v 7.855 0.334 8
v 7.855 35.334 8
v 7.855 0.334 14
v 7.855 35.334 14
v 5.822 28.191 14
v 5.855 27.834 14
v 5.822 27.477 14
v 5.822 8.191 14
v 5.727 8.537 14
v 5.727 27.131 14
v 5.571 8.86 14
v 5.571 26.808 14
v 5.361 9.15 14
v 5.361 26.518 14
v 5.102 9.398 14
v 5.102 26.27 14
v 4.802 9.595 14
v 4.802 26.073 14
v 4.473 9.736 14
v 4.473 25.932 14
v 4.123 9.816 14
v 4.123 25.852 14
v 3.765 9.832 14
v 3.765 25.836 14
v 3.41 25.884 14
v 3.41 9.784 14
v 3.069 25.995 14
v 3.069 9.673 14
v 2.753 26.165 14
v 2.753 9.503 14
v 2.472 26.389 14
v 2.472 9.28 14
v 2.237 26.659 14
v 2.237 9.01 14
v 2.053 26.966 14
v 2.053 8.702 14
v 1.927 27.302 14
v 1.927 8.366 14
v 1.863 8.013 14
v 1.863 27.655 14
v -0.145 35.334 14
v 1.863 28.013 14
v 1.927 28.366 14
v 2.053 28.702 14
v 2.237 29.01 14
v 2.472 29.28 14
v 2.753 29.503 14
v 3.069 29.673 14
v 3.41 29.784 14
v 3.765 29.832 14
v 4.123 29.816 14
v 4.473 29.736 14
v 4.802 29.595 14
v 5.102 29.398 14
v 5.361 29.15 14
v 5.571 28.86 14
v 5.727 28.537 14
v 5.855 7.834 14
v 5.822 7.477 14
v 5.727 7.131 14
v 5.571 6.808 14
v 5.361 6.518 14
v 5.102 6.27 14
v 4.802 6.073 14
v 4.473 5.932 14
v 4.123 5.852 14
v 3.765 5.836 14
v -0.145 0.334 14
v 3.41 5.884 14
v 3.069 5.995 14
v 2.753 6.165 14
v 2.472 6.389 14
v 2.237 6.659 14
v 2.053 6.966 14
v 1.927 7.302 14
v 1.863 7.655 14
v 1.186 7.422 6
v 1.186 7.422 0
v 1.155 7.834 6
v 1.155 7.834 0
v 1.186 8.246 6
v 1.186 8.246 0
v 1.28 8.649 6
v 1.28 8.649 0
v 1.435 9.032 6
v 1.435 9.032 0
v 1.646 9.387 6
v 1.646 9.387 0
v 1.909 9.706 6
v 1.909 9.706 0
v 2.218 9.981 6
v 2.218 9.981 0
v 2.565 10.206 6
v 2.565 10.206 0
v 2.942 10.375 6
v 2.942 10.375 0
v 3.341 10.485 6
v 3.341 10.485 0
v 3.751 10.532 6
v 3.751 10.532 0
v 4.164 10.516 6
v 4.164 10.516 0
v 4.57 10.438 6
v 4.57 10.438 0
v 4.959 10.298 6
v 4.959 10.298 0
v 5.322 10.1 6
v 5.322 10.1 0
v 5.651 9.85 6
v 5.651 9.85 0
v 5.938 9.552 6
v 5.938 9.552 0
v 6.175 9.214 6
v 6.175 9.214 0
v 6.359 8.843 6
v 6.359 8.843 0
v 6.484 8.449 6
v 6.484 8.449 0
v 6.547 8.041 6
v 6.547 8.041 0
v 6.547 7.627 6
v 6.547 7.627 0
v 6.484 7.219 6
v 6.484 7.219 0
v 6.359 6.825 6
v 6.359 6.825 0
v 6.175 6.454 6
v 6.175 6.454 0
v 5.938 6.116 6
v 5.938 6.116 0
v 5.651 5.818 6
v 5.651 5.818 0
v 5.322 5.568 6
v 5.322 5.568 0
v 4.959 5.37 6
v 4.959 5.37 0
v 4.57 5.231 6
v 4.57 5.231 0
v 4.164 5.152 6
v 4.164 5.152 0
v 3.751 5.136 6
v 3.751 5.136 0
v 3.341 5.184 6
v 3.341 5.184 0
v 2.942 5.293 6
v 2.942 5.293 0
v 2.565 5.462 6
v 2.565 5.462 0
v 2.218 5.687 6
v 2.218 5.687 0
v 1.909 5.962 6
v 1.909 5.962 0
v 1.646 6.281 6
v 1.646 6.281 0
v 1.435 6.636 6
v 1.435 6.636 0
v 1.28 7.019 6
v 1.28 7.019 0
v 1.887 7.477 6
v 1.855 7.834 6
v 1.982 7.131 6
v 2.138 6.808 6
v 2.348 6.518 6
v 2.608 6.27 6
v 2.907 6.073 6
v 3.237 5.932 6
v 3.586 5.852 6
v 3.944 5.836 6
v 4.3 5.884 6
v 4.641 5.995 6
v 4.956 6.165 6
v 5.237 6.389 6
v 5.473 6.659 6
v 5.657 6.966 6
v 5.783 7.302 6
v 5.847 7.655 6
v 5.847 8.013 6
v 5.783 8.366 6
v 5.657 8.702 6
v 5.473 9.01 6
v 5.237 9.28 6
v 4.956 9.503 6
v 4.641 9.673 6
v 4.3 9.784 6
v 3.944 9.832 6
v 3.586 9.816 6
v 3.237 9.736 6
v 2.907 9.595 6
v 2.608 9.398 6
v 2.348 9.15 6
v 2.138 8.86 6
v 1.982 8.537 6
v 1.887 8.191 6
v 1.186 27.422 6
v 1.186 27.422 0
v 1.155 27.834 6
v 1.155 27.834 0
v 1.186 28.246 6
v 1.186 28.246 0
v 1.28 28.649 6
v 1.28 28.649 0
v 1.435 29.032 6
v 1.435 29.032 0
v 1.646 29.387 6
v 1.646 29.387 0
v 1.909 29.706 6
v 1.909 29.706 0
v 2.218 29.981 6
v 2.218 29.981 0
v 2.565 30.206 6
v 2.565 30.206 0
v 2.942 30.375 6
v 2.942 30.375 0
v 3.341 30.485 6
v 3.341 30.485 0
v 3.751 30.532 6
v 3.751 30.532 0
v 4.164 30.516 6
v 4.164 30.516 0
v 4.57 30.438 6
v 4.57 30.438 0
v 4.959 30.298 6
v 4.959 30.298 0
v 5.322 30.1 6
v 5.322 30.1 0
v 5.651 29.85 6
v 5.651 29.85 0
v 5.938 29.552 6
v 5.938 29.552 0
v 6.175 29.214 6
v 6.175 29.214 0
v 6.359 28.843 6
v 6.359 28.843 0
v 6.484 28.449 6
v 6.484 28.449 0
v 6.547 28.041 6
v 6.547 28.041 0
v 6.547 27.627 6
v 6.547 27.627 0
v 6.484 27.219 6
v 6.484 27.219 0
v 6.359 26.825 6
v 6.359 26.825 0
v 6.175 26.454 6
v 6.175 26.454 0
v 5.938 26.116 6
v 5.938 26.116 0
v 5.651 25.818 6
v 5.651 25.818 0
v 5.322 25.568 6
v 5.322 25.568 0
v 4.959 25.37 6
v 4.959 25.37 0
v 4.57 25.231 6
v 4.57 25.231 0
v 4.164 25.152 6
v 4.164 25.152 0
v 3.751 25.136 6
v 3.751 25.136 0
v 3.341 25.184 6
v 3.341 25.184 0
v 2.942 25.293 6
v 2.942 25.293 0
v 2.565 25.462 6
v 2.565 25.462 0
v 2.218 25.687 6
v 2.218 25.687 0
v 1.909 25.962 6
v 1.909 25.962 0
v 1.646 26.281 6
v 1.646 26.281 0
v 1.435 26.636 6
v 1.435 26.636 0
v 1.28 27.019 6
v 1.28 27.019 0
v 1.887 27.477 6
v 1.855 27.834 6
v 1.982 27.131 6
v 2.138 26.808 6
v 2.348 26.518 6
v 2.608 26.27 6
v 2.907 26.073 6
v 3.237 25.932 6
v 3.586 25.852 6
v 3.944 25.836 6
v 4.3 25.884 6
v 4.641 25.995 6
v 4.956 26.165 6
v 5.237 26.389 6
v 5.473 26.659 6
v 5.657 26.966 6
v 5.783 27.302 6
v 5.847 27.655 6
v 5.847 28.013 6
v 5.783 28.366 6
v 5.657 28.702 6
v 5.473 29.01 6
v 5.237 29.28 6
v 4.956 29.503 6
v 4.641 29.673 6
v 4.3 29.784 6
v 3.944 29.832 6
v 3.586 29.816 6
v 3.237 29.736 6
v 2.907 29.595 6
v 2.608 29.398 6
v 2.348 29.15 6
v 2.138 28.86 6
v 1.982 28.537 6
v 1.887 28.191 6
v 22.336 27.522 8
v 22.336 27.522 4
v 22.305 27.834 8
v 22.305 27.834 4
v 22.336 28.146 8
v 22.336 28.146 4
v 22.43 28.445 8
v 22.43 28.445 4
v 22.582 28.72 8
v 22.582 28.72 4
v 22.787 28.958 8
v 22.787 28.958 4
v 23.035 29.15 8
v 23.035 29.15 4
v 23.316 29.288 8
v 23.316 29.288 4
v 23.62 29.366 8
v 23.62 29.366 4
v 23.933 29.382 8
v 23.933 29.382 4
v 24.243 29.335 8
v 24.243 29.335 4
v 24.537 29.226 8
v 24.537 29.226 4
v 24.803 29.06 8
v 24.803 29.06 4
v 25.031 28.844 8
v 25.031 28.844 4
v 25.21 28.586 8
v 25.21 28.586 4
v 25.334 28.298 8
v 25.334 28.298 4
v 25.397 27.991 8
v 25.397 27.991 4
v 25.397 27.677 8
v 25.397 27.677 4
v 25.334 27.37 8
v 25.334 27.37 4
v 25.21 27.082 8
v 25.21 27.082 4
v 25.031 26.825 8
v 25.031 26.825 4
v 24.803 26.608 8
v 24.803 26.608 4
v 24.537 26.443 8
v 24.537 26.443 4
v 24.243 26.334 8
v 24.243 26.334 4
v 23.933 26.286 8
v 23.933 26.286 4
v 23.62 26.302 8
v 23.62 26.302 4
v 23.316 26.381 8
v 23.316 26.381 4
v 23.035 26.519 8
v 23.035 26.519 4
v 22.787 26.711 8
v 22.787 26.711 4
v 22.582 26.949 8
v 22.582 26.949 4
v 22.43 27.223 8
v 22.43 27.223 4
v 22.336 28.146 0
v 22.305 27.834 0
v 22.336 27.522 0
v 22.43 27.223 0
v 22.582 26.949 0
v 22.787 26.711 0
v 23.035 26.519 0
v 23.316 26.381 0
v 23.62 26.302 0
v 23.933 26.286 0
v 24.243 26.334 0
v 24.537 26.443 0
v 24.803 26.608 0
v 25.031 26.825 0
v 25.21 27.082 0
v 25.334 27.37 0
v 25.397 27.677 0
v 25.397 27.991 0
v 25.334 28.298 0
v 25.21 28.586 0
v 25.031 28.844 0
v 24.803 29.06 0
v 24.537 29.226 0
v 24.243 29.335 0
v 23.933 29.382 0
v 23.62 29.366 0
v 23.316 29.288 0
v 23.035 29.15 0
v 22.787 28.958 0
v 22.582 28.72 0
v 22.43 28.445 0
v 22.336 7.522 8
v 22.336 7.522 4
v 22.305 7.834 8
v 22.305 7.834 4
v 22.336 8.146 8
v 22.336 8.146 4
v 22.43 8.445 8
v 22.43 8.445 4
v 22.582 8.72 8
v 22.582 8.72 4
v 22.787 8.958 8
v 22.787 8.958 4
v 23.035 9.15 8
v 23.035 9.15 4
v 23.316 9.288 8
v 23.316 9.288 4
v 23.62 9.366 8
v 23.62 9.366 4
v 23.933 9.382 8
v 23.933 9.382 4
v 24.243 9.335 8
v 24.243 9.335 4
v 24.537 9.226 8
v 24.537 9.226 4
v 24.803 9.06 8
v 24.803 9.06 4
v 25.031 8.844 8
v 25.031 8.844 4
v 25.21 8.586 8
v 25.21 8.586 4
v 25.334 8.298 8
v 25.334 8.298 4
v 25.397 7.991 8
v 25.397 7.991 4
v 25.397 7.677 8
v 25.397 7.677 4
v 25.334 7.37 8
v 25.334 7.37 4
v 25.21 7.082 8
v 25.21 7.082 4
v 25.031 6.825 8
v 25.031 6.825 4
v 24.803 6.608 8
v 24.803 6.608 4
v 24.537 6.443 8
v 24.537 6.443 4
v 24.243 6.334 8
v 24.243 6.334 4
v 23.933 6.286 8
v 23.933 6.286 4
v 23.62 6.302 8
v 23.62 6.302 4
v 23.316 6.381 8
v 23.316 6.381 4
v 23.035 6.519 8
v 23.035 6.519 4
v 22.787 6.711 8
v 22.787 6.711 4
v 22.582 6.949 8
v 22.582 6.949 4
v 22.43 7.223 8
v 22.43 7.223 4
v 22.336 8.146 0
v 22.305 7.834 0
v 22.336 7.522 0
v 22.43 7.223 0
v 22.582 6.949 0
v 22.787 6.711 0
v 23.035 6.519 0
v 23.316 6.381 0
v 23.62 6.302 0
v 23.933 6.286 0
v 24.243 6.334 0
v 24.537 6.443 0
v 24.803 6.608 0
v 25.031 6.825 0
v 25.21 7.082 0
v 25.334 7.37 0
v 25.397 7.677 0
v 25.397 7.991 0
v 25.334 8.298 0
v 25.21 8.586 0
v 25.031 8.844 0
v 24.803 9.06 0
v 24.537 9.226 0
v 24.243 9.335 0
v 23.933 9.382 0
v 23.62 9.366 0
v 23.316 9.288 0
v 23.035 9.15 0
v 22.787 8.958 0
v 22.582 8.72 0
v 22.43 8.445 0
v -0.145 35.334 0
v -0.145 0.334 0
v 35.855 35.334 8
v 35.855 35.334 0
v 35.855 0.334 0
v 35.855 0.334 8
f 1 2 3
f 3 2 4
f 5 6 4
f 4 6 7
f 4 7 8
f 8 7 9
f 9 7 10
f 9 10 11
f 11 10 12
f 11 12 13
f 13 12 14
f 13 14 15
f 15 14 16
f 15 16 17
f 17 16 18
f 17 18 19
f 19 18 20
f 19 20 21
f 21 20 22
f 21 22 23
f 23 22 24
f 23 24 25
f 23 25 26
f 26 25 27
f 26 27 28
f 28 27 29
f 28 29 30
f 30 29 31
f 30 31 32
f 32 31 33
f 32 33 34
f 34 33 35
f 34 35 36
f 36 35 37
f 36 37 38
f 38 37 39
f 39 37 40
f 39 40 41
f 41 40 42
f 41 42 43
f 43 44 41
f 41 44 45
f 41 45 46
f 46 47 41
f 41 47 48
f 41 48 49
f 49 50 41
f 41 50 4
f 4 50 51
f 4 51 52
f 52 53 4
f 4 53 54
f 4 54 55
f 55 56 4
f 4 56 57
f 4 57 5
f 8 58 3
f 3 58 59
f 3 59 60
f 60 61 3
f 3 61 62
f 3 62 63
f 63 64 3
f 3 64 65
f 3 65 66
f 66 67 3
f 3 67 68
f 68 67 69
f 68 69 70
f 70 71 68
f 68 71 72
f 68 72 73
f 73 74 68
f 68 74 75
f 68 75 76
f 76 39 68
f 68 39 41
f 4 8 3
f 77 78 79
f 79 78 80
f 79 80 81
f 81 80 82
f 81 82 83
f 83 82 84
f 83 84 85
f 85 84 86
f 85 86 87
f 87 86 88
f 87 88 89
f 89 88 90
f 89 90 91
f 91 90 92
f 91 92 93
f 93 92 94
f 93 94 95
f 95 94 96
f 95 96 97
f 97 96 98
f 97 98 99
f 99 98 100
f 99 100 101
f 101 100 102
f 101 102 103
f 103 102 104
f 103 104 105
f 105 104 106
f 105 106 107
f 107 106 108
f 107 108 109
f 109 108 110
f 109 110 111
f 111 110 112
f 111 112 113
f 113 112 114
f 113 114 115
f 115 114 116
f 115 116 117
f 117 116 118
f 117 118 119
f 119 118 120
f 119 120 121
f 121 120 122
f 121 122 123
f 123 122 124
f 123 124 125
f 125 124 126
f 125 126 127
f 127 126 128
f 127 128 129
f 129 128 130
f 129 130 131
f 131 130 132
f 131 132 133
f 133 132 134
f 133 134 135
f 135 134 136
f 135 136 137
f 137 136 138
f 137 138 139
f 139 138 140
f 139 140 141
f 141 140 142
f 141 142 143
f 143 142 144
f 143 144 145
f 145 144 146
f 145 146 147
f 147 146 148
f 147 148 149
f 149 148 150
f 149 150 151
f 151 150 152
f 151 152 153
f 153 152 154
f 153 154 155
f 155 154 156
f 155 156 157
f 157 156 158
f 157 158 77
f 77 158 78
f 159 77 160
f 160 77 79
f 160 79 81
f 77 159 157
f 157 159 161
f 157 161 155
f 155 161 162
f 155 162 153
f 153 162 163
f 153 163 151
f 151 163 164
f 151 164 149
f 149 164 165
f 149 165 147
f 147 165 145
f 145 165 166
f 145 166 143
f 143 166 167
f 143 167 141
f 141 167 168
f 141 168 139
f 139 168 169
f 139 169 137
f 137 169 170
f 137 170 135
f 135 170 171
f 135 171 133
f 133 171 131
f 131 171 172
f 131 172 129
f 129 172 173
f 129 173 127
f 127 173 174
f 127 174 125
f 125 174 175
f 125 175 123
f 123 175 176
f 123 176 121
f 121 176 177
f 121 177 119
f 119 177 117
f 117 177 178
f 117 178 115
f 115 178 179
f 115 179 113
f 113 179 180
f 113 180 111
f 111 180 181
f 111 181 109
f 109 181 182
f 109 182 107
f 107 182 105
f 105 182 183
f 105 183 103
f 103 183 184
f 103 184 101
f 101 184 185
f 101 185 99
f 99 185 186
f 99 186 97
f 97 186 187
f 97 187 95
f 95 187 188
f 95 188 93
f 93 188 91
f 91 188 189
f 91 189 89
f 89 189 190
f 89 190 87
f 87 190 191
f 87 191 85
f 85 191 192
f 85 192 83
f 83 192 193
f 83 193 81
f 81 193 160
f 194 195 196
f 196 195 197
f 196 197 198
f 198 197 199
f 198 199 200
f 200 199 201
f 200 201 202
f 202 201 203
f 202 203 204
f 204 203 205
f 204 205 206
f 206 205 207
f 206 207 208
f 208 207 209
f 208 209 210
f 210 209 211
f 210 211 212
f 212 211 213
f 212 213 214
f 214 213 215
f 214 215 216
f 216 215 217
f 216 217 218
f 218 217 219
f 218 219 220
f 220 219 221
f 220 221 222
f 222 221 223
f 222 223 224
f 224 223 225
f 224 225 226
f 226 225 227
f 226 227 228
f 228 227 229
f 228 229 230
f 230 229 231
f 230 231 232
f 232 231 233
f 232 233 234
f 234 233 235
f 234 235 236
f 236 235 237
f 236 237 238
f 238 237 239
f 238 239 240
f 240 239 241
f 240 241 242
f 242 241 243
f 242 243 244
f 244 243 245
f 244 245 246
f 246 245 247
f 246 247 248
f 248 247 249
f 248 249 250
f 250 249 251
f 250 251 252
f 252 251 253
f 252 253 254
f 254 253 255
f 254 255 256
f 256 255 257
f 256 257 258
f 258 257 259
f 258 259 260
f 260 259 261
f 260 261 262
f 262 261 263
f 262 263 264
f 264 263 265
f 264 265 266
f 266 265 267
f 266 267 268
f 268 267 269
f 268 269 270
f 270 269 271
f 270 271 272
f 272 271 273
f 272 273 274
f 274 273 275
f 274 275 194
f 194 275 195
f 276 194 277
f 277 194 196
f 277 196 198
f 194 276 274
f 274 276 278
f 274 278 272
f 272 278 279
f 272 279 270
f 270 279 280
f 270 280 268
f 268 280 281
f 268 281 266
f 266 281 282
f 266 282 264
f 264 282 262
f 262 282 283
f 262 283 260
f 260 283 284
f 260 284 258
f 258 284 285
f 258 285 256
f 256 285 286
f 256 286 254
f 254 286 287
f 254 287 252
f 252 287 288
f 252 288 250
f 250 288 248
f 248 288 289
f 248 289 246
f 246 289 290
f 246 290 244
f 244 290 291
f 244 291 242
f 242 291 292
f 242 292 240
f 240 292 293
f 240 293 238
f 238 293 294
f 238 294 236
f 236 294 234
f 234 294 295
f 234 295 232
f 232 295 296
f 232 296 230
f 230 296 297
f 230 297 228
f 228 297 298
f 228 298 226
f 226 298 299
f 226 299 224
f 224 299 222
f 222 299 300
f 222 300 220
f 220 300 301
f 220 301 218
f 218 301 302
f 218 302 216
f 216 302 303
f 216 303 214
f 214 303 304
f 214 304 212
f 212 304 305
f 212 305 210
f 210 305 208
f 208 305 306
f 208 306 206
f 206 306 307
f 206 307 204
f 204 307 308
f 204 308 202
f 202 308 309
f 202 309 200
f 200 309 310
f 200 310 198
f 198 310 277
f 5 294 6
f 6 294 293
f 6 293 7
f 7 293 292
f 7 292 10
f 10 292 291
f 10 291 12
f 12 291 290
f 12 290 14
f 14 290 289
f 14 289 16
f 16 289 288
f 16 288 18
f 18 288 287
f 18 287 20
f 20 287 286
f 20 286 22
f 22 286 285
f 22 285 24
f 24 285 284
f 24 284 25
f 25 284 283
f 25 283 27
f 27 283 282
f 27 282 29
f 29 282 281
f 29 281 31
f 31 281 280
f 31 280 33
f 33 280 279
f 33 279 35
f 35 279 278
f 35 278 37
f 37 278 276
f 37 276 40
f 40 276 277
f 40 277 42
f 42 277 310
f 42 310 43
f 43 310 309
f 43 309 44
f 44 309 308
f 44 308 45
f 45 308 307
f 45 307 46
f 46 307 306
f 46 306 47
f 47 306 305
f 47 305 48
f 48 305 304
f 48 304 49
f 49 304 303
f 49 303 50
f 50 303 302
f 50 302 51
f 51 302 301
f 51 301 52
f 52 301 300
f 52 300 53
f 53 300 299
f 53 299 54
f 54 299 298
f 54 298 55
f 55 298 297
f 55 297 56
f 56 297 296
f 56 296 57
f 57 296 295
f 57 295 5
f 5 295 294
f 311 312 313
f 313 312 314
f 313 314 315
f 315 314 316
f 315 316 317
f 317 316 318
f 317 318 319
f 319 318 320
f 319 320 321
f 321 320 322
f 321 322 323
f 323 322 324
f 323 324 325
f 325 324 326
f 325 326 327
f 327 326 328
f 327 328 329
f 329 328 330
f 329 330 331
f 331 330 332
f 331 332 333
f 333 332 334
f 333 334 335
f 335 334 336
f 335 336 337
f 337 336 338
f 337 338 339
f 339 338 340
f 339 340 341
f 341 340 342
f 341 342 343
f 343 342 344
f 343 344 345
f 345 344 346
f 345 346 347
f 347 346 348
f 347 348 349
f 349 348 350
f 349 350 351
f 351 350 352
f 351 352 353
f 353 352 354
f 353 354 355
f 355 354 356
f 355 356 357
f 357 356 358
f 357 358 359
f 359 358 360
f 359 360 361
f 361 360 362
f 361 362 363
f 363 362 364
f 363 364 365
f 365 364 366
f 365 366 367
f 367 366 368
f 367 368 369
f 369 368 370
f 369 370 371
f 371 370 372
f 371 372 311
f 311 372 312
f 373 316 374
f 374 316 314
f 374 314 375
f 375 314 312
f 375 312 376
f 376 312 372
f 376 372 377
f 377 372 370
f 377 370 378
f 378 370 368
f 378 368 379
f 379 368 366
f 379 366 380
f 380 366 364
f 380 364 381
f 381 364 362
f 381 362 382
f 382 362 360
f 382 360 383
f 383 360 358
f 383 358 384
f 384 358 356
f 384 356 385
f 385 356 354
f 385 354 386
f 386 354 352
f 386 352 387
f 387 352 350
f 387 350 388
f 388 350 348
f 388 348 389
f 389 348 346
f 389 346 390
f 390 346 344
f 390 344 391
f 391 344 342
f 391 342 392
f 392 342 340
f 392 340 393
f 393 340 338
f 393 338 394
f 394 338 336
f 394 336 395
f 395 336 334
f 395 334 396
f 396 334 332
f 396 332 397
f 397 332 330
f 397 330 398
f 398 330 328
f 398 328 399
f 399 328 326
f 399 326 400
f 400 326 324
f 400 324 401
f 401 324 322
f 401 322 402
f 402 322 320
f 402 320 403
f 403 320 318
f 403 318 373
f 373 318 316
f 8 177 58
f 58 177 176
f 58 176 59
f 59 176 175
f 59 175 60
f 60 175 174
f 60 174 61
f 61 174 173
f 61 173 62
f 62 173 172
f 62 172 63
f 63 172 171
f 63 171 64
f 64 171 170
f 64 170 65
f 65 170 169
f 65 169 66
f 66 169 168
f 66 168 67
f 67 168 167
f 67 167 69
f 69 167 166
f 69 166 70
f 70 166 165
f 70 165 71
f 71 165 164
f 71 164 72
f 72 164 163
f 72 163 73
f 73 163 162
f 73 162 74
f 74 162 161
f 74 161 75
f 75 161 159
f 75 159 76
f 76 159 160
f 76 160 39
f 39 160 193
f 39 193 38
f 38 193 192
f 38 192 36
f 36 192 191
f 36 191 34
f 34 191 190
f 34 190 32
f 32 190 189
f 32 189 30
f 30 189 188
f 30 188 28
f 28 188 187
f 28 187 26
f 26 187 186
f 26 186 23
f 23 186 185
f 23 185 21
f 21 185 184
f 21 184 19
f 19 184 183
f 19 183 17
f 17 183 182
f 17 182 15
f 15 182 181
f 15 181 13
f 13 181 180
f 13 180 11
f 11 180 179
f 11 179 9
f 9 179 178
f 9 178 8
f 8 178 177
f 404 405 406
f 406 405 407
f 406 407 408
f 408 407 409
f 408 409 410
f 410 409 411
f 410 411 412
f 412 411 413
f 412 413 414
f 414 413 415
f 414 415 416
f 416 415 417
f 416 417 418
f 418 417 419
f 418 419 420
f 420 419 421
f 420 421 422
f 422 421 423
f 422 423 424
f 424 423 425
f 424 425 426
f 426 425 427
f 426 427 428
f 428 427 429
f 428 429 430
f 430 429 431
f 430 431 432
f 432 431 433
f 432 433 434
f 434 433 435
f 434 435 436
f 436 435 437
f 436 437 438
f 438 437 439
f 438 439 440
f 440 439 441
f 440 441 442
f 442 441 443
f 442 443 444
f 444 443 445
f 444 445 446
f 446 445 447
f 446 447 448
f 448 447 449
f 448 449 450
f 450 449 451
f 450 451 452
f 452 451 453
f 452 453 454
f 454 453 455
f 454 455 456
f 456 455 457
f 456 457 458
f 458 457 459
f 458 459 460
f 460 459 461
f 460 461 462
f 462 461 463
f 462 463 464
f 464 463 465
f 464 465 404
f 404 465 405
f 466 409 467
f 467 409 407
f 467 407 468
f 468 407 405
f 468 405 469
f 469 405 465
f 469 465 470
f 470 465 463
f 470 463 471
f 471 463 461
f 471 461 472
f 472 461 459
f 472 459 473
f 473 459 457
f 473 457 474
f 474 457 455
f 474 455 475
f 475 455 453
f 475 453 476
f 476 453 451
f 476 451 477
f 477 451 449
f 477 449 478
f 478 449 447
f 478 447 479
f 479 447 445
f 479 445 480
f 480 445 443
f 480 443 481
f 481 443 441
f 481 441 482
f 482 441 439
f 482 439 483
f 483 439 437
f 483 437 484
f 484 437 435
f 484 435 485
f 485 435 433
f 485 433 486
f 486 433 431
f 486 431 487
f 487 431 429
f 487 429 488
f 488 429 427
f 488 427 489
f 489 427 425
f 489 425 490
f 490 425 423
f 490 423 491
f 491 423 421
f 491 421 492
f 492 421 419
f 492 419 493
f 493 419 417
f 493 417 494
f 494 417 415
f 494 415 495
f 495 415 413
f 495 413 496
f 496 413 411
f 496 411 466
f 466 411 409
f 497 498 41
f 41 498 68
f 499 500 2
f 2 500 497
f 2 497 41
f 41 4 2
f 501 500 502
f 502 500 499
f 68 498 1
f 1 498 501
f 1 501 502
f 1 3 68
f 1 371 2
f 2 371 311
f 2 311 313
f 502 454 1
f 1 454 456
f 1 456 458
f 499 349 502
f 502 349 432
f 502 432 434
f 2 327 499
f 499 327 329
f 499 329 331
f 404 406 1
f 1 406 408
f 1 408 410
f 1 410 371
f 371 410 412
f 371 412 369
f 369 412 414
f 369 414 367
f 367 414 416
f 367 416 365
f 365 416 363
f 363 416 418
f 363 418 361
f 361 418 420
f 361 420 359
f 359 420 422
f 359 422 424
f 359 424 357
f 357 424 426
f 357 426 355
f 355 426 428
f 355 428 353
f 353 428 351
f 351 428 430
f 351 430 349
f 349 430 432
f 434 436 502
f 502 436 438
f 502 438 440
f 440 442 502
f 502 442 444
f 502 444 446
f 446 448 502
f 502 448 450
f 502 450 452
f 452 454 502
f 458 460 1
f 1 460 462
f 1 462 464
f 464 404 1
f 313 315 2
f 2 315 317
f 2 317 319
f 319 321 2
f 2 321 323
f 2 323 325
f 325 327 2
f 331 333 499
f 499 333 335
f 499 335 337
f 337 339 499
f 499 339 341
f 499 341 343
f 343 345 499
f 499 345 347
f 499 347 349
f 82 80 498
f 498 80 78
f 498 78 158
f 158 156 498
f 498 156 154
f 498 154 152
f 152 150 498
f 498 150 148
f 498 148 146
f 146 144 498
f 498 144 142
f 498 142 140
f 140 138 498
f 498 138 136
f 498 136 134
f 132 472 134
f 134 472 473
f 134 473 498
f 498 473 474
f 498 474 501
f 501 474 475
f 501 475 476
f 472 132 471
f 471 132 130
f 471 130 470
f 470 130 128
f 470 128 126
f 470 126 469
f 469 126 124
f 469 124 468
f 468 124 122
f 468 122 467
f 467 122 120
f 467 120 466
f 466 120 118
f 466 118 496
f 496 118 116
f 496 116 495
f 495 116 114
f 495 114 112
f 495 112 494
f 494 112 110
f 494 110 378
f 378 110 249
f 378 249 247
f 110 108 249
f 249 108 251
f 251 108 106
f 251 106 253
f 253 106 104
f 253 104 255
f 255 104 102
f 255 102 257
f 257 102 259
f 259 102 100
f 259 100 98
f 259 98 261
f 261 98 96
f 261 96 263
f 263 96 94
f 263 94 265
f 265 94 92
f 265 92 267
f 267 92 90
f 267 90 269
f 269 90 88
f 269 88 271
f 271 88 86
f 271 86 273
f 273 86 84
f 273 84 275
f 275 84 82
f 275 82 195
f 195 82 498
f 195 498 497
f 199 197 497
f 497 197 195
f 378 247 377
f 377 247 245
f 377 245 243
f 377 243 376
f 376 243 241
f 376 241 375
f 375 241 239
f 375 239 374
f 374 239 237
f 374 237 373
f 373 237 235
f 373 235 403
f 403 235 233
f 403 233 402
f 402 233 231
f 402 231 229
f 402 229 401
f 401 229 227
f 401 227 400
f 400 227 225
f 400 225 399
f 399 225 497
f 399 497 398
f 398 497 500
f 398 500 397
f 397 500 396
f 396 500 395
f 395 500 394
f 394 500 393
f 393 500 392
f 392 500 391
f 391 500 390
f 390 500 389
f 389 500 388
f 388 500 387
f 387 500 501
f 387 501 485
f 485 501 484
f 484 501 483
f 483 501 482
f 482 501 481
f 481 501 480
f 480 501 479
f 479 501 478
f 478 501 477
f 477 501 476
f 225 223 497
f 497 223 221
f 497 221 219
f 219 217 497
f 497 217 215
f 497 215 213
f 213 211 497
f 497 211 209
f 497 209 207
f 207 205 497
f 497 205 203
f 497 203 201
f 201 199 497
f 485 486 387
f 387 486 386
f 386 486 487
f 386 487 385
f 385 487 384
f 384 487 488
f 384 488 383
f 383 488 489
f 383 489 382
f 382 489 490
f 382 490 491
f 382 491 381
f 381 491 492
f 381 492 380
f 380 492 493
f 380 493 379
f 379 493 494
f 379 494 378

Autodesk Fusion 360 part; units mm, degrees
sketch "Sketch2" plane through (0, 0, 0) normal (0, 0, 1) x (1, 0, 0)
  line L0 (-0.1454, 35.3341) -> (35.8546, 35.3341)
  line L1 (35.8546, 35.3341) -> (35.8546, 0.3341)
  line L2 (35.8546, 0.3341) -> (-0.1454, 0.3341)
  line L3 (-0.1454, 0.3341) -> (-0.1454, 35.3341)
  line L4 (-0.1454, 17.8341) -> (35.8546, 17.8341) construction
  line L5 (23.8546, 0.3341) -> (23.8546, 35.3341) construction
  circle A0 centre (23.8546, 27.8341) radius 1.55
  circle A1 centre (23.8546, 7.8341) radius 1.55
  line L6 (3.8546, 35.3341) -> (3.8546, 0.3341) construction
  circle A2 centre (3.8546, 27.8341) radius 2
  circle A3 centre (3.8546, 7.8341) radius 2
  circle A4 centre (3.8546, 27.8341) radius 2.7
  circle A5 centre (3.8546, 7.8341) radius 2.7
  line L7 (-0.1454, 0.3341) -> (7.8546, 0.3341)
  line L8 (7.8546, 35.4069) -> (-0.1454, 35.4069)
  line L9 (-0.1454, 35.4069) -> (-0.1454, 0.3341)
  dimension "d22" = 36
  dimension "d23" = 35
  dimension "d24" = 3.1
  dimension "d25" = 3.1
  dimension "d26" = 10
  dimension "d27" = 10
  dimension "d28" = 12
  dimension "d29" = 4
  dimension "d30" = 4
  dimension "d31" = 4
  dimension "d32" = 10
  dimension "d33" = 10
  dimension "d34" = 5.4
  dimension "d35" = 5.4
  dimension "d40" = 8
extrude "Extrude5" add sketch "Sketch2" along normal blind 8 contours L0 L1 L2 L3 L7 L9 | A4 | A5
extrude "Extrude6" cut sketch "Sketch2" along normal blind 6 contours A4 | A5
sketch "Sketch3" plane through (0, 0, 8) normal (0, 0, 1) x (-1, 0, 0)
  circle A0 centre (-23.8546, -7.8341) radius 1.55
  circle A1 centre (-3.8546, -7.8341) radius 2
  circle A2 centre (-23.8546, -27.8341) radius 1.55
  circle A3 centre (-3.8546, -27.8341) radius 2
  line L0 (0.1454, -0.3341) -> (-35.8546, -0.3341)
  line L1 (-35.8546, -0.3341) -> (-35.8546, -35.3341)
  line L2 (-35.8546, -35.3341) -> (0.1454, -35.3341)
  line L3 (0.1454, -35.3341) -> (0.1454, -0.3341)
  line L4 (0.1454, -0.3341) -> (-7.8546, -0.3341)
  line L5 (-7.8546, -0.3341) -> (-7.8546, -35.3341)
  line L6 (-7.8546, -35.3341) -> (0.1454, -35.3341)
  line L7 (0.1454, -35.3341) -> (0.1454, -0.3341)
  dimension "d45" = 8
  dimension "d46" = 35
extrude "Extrude9" add sketch "Sketch3" along normal blind 6 contours L0 L2 L3 L4 L5 L6 L7
